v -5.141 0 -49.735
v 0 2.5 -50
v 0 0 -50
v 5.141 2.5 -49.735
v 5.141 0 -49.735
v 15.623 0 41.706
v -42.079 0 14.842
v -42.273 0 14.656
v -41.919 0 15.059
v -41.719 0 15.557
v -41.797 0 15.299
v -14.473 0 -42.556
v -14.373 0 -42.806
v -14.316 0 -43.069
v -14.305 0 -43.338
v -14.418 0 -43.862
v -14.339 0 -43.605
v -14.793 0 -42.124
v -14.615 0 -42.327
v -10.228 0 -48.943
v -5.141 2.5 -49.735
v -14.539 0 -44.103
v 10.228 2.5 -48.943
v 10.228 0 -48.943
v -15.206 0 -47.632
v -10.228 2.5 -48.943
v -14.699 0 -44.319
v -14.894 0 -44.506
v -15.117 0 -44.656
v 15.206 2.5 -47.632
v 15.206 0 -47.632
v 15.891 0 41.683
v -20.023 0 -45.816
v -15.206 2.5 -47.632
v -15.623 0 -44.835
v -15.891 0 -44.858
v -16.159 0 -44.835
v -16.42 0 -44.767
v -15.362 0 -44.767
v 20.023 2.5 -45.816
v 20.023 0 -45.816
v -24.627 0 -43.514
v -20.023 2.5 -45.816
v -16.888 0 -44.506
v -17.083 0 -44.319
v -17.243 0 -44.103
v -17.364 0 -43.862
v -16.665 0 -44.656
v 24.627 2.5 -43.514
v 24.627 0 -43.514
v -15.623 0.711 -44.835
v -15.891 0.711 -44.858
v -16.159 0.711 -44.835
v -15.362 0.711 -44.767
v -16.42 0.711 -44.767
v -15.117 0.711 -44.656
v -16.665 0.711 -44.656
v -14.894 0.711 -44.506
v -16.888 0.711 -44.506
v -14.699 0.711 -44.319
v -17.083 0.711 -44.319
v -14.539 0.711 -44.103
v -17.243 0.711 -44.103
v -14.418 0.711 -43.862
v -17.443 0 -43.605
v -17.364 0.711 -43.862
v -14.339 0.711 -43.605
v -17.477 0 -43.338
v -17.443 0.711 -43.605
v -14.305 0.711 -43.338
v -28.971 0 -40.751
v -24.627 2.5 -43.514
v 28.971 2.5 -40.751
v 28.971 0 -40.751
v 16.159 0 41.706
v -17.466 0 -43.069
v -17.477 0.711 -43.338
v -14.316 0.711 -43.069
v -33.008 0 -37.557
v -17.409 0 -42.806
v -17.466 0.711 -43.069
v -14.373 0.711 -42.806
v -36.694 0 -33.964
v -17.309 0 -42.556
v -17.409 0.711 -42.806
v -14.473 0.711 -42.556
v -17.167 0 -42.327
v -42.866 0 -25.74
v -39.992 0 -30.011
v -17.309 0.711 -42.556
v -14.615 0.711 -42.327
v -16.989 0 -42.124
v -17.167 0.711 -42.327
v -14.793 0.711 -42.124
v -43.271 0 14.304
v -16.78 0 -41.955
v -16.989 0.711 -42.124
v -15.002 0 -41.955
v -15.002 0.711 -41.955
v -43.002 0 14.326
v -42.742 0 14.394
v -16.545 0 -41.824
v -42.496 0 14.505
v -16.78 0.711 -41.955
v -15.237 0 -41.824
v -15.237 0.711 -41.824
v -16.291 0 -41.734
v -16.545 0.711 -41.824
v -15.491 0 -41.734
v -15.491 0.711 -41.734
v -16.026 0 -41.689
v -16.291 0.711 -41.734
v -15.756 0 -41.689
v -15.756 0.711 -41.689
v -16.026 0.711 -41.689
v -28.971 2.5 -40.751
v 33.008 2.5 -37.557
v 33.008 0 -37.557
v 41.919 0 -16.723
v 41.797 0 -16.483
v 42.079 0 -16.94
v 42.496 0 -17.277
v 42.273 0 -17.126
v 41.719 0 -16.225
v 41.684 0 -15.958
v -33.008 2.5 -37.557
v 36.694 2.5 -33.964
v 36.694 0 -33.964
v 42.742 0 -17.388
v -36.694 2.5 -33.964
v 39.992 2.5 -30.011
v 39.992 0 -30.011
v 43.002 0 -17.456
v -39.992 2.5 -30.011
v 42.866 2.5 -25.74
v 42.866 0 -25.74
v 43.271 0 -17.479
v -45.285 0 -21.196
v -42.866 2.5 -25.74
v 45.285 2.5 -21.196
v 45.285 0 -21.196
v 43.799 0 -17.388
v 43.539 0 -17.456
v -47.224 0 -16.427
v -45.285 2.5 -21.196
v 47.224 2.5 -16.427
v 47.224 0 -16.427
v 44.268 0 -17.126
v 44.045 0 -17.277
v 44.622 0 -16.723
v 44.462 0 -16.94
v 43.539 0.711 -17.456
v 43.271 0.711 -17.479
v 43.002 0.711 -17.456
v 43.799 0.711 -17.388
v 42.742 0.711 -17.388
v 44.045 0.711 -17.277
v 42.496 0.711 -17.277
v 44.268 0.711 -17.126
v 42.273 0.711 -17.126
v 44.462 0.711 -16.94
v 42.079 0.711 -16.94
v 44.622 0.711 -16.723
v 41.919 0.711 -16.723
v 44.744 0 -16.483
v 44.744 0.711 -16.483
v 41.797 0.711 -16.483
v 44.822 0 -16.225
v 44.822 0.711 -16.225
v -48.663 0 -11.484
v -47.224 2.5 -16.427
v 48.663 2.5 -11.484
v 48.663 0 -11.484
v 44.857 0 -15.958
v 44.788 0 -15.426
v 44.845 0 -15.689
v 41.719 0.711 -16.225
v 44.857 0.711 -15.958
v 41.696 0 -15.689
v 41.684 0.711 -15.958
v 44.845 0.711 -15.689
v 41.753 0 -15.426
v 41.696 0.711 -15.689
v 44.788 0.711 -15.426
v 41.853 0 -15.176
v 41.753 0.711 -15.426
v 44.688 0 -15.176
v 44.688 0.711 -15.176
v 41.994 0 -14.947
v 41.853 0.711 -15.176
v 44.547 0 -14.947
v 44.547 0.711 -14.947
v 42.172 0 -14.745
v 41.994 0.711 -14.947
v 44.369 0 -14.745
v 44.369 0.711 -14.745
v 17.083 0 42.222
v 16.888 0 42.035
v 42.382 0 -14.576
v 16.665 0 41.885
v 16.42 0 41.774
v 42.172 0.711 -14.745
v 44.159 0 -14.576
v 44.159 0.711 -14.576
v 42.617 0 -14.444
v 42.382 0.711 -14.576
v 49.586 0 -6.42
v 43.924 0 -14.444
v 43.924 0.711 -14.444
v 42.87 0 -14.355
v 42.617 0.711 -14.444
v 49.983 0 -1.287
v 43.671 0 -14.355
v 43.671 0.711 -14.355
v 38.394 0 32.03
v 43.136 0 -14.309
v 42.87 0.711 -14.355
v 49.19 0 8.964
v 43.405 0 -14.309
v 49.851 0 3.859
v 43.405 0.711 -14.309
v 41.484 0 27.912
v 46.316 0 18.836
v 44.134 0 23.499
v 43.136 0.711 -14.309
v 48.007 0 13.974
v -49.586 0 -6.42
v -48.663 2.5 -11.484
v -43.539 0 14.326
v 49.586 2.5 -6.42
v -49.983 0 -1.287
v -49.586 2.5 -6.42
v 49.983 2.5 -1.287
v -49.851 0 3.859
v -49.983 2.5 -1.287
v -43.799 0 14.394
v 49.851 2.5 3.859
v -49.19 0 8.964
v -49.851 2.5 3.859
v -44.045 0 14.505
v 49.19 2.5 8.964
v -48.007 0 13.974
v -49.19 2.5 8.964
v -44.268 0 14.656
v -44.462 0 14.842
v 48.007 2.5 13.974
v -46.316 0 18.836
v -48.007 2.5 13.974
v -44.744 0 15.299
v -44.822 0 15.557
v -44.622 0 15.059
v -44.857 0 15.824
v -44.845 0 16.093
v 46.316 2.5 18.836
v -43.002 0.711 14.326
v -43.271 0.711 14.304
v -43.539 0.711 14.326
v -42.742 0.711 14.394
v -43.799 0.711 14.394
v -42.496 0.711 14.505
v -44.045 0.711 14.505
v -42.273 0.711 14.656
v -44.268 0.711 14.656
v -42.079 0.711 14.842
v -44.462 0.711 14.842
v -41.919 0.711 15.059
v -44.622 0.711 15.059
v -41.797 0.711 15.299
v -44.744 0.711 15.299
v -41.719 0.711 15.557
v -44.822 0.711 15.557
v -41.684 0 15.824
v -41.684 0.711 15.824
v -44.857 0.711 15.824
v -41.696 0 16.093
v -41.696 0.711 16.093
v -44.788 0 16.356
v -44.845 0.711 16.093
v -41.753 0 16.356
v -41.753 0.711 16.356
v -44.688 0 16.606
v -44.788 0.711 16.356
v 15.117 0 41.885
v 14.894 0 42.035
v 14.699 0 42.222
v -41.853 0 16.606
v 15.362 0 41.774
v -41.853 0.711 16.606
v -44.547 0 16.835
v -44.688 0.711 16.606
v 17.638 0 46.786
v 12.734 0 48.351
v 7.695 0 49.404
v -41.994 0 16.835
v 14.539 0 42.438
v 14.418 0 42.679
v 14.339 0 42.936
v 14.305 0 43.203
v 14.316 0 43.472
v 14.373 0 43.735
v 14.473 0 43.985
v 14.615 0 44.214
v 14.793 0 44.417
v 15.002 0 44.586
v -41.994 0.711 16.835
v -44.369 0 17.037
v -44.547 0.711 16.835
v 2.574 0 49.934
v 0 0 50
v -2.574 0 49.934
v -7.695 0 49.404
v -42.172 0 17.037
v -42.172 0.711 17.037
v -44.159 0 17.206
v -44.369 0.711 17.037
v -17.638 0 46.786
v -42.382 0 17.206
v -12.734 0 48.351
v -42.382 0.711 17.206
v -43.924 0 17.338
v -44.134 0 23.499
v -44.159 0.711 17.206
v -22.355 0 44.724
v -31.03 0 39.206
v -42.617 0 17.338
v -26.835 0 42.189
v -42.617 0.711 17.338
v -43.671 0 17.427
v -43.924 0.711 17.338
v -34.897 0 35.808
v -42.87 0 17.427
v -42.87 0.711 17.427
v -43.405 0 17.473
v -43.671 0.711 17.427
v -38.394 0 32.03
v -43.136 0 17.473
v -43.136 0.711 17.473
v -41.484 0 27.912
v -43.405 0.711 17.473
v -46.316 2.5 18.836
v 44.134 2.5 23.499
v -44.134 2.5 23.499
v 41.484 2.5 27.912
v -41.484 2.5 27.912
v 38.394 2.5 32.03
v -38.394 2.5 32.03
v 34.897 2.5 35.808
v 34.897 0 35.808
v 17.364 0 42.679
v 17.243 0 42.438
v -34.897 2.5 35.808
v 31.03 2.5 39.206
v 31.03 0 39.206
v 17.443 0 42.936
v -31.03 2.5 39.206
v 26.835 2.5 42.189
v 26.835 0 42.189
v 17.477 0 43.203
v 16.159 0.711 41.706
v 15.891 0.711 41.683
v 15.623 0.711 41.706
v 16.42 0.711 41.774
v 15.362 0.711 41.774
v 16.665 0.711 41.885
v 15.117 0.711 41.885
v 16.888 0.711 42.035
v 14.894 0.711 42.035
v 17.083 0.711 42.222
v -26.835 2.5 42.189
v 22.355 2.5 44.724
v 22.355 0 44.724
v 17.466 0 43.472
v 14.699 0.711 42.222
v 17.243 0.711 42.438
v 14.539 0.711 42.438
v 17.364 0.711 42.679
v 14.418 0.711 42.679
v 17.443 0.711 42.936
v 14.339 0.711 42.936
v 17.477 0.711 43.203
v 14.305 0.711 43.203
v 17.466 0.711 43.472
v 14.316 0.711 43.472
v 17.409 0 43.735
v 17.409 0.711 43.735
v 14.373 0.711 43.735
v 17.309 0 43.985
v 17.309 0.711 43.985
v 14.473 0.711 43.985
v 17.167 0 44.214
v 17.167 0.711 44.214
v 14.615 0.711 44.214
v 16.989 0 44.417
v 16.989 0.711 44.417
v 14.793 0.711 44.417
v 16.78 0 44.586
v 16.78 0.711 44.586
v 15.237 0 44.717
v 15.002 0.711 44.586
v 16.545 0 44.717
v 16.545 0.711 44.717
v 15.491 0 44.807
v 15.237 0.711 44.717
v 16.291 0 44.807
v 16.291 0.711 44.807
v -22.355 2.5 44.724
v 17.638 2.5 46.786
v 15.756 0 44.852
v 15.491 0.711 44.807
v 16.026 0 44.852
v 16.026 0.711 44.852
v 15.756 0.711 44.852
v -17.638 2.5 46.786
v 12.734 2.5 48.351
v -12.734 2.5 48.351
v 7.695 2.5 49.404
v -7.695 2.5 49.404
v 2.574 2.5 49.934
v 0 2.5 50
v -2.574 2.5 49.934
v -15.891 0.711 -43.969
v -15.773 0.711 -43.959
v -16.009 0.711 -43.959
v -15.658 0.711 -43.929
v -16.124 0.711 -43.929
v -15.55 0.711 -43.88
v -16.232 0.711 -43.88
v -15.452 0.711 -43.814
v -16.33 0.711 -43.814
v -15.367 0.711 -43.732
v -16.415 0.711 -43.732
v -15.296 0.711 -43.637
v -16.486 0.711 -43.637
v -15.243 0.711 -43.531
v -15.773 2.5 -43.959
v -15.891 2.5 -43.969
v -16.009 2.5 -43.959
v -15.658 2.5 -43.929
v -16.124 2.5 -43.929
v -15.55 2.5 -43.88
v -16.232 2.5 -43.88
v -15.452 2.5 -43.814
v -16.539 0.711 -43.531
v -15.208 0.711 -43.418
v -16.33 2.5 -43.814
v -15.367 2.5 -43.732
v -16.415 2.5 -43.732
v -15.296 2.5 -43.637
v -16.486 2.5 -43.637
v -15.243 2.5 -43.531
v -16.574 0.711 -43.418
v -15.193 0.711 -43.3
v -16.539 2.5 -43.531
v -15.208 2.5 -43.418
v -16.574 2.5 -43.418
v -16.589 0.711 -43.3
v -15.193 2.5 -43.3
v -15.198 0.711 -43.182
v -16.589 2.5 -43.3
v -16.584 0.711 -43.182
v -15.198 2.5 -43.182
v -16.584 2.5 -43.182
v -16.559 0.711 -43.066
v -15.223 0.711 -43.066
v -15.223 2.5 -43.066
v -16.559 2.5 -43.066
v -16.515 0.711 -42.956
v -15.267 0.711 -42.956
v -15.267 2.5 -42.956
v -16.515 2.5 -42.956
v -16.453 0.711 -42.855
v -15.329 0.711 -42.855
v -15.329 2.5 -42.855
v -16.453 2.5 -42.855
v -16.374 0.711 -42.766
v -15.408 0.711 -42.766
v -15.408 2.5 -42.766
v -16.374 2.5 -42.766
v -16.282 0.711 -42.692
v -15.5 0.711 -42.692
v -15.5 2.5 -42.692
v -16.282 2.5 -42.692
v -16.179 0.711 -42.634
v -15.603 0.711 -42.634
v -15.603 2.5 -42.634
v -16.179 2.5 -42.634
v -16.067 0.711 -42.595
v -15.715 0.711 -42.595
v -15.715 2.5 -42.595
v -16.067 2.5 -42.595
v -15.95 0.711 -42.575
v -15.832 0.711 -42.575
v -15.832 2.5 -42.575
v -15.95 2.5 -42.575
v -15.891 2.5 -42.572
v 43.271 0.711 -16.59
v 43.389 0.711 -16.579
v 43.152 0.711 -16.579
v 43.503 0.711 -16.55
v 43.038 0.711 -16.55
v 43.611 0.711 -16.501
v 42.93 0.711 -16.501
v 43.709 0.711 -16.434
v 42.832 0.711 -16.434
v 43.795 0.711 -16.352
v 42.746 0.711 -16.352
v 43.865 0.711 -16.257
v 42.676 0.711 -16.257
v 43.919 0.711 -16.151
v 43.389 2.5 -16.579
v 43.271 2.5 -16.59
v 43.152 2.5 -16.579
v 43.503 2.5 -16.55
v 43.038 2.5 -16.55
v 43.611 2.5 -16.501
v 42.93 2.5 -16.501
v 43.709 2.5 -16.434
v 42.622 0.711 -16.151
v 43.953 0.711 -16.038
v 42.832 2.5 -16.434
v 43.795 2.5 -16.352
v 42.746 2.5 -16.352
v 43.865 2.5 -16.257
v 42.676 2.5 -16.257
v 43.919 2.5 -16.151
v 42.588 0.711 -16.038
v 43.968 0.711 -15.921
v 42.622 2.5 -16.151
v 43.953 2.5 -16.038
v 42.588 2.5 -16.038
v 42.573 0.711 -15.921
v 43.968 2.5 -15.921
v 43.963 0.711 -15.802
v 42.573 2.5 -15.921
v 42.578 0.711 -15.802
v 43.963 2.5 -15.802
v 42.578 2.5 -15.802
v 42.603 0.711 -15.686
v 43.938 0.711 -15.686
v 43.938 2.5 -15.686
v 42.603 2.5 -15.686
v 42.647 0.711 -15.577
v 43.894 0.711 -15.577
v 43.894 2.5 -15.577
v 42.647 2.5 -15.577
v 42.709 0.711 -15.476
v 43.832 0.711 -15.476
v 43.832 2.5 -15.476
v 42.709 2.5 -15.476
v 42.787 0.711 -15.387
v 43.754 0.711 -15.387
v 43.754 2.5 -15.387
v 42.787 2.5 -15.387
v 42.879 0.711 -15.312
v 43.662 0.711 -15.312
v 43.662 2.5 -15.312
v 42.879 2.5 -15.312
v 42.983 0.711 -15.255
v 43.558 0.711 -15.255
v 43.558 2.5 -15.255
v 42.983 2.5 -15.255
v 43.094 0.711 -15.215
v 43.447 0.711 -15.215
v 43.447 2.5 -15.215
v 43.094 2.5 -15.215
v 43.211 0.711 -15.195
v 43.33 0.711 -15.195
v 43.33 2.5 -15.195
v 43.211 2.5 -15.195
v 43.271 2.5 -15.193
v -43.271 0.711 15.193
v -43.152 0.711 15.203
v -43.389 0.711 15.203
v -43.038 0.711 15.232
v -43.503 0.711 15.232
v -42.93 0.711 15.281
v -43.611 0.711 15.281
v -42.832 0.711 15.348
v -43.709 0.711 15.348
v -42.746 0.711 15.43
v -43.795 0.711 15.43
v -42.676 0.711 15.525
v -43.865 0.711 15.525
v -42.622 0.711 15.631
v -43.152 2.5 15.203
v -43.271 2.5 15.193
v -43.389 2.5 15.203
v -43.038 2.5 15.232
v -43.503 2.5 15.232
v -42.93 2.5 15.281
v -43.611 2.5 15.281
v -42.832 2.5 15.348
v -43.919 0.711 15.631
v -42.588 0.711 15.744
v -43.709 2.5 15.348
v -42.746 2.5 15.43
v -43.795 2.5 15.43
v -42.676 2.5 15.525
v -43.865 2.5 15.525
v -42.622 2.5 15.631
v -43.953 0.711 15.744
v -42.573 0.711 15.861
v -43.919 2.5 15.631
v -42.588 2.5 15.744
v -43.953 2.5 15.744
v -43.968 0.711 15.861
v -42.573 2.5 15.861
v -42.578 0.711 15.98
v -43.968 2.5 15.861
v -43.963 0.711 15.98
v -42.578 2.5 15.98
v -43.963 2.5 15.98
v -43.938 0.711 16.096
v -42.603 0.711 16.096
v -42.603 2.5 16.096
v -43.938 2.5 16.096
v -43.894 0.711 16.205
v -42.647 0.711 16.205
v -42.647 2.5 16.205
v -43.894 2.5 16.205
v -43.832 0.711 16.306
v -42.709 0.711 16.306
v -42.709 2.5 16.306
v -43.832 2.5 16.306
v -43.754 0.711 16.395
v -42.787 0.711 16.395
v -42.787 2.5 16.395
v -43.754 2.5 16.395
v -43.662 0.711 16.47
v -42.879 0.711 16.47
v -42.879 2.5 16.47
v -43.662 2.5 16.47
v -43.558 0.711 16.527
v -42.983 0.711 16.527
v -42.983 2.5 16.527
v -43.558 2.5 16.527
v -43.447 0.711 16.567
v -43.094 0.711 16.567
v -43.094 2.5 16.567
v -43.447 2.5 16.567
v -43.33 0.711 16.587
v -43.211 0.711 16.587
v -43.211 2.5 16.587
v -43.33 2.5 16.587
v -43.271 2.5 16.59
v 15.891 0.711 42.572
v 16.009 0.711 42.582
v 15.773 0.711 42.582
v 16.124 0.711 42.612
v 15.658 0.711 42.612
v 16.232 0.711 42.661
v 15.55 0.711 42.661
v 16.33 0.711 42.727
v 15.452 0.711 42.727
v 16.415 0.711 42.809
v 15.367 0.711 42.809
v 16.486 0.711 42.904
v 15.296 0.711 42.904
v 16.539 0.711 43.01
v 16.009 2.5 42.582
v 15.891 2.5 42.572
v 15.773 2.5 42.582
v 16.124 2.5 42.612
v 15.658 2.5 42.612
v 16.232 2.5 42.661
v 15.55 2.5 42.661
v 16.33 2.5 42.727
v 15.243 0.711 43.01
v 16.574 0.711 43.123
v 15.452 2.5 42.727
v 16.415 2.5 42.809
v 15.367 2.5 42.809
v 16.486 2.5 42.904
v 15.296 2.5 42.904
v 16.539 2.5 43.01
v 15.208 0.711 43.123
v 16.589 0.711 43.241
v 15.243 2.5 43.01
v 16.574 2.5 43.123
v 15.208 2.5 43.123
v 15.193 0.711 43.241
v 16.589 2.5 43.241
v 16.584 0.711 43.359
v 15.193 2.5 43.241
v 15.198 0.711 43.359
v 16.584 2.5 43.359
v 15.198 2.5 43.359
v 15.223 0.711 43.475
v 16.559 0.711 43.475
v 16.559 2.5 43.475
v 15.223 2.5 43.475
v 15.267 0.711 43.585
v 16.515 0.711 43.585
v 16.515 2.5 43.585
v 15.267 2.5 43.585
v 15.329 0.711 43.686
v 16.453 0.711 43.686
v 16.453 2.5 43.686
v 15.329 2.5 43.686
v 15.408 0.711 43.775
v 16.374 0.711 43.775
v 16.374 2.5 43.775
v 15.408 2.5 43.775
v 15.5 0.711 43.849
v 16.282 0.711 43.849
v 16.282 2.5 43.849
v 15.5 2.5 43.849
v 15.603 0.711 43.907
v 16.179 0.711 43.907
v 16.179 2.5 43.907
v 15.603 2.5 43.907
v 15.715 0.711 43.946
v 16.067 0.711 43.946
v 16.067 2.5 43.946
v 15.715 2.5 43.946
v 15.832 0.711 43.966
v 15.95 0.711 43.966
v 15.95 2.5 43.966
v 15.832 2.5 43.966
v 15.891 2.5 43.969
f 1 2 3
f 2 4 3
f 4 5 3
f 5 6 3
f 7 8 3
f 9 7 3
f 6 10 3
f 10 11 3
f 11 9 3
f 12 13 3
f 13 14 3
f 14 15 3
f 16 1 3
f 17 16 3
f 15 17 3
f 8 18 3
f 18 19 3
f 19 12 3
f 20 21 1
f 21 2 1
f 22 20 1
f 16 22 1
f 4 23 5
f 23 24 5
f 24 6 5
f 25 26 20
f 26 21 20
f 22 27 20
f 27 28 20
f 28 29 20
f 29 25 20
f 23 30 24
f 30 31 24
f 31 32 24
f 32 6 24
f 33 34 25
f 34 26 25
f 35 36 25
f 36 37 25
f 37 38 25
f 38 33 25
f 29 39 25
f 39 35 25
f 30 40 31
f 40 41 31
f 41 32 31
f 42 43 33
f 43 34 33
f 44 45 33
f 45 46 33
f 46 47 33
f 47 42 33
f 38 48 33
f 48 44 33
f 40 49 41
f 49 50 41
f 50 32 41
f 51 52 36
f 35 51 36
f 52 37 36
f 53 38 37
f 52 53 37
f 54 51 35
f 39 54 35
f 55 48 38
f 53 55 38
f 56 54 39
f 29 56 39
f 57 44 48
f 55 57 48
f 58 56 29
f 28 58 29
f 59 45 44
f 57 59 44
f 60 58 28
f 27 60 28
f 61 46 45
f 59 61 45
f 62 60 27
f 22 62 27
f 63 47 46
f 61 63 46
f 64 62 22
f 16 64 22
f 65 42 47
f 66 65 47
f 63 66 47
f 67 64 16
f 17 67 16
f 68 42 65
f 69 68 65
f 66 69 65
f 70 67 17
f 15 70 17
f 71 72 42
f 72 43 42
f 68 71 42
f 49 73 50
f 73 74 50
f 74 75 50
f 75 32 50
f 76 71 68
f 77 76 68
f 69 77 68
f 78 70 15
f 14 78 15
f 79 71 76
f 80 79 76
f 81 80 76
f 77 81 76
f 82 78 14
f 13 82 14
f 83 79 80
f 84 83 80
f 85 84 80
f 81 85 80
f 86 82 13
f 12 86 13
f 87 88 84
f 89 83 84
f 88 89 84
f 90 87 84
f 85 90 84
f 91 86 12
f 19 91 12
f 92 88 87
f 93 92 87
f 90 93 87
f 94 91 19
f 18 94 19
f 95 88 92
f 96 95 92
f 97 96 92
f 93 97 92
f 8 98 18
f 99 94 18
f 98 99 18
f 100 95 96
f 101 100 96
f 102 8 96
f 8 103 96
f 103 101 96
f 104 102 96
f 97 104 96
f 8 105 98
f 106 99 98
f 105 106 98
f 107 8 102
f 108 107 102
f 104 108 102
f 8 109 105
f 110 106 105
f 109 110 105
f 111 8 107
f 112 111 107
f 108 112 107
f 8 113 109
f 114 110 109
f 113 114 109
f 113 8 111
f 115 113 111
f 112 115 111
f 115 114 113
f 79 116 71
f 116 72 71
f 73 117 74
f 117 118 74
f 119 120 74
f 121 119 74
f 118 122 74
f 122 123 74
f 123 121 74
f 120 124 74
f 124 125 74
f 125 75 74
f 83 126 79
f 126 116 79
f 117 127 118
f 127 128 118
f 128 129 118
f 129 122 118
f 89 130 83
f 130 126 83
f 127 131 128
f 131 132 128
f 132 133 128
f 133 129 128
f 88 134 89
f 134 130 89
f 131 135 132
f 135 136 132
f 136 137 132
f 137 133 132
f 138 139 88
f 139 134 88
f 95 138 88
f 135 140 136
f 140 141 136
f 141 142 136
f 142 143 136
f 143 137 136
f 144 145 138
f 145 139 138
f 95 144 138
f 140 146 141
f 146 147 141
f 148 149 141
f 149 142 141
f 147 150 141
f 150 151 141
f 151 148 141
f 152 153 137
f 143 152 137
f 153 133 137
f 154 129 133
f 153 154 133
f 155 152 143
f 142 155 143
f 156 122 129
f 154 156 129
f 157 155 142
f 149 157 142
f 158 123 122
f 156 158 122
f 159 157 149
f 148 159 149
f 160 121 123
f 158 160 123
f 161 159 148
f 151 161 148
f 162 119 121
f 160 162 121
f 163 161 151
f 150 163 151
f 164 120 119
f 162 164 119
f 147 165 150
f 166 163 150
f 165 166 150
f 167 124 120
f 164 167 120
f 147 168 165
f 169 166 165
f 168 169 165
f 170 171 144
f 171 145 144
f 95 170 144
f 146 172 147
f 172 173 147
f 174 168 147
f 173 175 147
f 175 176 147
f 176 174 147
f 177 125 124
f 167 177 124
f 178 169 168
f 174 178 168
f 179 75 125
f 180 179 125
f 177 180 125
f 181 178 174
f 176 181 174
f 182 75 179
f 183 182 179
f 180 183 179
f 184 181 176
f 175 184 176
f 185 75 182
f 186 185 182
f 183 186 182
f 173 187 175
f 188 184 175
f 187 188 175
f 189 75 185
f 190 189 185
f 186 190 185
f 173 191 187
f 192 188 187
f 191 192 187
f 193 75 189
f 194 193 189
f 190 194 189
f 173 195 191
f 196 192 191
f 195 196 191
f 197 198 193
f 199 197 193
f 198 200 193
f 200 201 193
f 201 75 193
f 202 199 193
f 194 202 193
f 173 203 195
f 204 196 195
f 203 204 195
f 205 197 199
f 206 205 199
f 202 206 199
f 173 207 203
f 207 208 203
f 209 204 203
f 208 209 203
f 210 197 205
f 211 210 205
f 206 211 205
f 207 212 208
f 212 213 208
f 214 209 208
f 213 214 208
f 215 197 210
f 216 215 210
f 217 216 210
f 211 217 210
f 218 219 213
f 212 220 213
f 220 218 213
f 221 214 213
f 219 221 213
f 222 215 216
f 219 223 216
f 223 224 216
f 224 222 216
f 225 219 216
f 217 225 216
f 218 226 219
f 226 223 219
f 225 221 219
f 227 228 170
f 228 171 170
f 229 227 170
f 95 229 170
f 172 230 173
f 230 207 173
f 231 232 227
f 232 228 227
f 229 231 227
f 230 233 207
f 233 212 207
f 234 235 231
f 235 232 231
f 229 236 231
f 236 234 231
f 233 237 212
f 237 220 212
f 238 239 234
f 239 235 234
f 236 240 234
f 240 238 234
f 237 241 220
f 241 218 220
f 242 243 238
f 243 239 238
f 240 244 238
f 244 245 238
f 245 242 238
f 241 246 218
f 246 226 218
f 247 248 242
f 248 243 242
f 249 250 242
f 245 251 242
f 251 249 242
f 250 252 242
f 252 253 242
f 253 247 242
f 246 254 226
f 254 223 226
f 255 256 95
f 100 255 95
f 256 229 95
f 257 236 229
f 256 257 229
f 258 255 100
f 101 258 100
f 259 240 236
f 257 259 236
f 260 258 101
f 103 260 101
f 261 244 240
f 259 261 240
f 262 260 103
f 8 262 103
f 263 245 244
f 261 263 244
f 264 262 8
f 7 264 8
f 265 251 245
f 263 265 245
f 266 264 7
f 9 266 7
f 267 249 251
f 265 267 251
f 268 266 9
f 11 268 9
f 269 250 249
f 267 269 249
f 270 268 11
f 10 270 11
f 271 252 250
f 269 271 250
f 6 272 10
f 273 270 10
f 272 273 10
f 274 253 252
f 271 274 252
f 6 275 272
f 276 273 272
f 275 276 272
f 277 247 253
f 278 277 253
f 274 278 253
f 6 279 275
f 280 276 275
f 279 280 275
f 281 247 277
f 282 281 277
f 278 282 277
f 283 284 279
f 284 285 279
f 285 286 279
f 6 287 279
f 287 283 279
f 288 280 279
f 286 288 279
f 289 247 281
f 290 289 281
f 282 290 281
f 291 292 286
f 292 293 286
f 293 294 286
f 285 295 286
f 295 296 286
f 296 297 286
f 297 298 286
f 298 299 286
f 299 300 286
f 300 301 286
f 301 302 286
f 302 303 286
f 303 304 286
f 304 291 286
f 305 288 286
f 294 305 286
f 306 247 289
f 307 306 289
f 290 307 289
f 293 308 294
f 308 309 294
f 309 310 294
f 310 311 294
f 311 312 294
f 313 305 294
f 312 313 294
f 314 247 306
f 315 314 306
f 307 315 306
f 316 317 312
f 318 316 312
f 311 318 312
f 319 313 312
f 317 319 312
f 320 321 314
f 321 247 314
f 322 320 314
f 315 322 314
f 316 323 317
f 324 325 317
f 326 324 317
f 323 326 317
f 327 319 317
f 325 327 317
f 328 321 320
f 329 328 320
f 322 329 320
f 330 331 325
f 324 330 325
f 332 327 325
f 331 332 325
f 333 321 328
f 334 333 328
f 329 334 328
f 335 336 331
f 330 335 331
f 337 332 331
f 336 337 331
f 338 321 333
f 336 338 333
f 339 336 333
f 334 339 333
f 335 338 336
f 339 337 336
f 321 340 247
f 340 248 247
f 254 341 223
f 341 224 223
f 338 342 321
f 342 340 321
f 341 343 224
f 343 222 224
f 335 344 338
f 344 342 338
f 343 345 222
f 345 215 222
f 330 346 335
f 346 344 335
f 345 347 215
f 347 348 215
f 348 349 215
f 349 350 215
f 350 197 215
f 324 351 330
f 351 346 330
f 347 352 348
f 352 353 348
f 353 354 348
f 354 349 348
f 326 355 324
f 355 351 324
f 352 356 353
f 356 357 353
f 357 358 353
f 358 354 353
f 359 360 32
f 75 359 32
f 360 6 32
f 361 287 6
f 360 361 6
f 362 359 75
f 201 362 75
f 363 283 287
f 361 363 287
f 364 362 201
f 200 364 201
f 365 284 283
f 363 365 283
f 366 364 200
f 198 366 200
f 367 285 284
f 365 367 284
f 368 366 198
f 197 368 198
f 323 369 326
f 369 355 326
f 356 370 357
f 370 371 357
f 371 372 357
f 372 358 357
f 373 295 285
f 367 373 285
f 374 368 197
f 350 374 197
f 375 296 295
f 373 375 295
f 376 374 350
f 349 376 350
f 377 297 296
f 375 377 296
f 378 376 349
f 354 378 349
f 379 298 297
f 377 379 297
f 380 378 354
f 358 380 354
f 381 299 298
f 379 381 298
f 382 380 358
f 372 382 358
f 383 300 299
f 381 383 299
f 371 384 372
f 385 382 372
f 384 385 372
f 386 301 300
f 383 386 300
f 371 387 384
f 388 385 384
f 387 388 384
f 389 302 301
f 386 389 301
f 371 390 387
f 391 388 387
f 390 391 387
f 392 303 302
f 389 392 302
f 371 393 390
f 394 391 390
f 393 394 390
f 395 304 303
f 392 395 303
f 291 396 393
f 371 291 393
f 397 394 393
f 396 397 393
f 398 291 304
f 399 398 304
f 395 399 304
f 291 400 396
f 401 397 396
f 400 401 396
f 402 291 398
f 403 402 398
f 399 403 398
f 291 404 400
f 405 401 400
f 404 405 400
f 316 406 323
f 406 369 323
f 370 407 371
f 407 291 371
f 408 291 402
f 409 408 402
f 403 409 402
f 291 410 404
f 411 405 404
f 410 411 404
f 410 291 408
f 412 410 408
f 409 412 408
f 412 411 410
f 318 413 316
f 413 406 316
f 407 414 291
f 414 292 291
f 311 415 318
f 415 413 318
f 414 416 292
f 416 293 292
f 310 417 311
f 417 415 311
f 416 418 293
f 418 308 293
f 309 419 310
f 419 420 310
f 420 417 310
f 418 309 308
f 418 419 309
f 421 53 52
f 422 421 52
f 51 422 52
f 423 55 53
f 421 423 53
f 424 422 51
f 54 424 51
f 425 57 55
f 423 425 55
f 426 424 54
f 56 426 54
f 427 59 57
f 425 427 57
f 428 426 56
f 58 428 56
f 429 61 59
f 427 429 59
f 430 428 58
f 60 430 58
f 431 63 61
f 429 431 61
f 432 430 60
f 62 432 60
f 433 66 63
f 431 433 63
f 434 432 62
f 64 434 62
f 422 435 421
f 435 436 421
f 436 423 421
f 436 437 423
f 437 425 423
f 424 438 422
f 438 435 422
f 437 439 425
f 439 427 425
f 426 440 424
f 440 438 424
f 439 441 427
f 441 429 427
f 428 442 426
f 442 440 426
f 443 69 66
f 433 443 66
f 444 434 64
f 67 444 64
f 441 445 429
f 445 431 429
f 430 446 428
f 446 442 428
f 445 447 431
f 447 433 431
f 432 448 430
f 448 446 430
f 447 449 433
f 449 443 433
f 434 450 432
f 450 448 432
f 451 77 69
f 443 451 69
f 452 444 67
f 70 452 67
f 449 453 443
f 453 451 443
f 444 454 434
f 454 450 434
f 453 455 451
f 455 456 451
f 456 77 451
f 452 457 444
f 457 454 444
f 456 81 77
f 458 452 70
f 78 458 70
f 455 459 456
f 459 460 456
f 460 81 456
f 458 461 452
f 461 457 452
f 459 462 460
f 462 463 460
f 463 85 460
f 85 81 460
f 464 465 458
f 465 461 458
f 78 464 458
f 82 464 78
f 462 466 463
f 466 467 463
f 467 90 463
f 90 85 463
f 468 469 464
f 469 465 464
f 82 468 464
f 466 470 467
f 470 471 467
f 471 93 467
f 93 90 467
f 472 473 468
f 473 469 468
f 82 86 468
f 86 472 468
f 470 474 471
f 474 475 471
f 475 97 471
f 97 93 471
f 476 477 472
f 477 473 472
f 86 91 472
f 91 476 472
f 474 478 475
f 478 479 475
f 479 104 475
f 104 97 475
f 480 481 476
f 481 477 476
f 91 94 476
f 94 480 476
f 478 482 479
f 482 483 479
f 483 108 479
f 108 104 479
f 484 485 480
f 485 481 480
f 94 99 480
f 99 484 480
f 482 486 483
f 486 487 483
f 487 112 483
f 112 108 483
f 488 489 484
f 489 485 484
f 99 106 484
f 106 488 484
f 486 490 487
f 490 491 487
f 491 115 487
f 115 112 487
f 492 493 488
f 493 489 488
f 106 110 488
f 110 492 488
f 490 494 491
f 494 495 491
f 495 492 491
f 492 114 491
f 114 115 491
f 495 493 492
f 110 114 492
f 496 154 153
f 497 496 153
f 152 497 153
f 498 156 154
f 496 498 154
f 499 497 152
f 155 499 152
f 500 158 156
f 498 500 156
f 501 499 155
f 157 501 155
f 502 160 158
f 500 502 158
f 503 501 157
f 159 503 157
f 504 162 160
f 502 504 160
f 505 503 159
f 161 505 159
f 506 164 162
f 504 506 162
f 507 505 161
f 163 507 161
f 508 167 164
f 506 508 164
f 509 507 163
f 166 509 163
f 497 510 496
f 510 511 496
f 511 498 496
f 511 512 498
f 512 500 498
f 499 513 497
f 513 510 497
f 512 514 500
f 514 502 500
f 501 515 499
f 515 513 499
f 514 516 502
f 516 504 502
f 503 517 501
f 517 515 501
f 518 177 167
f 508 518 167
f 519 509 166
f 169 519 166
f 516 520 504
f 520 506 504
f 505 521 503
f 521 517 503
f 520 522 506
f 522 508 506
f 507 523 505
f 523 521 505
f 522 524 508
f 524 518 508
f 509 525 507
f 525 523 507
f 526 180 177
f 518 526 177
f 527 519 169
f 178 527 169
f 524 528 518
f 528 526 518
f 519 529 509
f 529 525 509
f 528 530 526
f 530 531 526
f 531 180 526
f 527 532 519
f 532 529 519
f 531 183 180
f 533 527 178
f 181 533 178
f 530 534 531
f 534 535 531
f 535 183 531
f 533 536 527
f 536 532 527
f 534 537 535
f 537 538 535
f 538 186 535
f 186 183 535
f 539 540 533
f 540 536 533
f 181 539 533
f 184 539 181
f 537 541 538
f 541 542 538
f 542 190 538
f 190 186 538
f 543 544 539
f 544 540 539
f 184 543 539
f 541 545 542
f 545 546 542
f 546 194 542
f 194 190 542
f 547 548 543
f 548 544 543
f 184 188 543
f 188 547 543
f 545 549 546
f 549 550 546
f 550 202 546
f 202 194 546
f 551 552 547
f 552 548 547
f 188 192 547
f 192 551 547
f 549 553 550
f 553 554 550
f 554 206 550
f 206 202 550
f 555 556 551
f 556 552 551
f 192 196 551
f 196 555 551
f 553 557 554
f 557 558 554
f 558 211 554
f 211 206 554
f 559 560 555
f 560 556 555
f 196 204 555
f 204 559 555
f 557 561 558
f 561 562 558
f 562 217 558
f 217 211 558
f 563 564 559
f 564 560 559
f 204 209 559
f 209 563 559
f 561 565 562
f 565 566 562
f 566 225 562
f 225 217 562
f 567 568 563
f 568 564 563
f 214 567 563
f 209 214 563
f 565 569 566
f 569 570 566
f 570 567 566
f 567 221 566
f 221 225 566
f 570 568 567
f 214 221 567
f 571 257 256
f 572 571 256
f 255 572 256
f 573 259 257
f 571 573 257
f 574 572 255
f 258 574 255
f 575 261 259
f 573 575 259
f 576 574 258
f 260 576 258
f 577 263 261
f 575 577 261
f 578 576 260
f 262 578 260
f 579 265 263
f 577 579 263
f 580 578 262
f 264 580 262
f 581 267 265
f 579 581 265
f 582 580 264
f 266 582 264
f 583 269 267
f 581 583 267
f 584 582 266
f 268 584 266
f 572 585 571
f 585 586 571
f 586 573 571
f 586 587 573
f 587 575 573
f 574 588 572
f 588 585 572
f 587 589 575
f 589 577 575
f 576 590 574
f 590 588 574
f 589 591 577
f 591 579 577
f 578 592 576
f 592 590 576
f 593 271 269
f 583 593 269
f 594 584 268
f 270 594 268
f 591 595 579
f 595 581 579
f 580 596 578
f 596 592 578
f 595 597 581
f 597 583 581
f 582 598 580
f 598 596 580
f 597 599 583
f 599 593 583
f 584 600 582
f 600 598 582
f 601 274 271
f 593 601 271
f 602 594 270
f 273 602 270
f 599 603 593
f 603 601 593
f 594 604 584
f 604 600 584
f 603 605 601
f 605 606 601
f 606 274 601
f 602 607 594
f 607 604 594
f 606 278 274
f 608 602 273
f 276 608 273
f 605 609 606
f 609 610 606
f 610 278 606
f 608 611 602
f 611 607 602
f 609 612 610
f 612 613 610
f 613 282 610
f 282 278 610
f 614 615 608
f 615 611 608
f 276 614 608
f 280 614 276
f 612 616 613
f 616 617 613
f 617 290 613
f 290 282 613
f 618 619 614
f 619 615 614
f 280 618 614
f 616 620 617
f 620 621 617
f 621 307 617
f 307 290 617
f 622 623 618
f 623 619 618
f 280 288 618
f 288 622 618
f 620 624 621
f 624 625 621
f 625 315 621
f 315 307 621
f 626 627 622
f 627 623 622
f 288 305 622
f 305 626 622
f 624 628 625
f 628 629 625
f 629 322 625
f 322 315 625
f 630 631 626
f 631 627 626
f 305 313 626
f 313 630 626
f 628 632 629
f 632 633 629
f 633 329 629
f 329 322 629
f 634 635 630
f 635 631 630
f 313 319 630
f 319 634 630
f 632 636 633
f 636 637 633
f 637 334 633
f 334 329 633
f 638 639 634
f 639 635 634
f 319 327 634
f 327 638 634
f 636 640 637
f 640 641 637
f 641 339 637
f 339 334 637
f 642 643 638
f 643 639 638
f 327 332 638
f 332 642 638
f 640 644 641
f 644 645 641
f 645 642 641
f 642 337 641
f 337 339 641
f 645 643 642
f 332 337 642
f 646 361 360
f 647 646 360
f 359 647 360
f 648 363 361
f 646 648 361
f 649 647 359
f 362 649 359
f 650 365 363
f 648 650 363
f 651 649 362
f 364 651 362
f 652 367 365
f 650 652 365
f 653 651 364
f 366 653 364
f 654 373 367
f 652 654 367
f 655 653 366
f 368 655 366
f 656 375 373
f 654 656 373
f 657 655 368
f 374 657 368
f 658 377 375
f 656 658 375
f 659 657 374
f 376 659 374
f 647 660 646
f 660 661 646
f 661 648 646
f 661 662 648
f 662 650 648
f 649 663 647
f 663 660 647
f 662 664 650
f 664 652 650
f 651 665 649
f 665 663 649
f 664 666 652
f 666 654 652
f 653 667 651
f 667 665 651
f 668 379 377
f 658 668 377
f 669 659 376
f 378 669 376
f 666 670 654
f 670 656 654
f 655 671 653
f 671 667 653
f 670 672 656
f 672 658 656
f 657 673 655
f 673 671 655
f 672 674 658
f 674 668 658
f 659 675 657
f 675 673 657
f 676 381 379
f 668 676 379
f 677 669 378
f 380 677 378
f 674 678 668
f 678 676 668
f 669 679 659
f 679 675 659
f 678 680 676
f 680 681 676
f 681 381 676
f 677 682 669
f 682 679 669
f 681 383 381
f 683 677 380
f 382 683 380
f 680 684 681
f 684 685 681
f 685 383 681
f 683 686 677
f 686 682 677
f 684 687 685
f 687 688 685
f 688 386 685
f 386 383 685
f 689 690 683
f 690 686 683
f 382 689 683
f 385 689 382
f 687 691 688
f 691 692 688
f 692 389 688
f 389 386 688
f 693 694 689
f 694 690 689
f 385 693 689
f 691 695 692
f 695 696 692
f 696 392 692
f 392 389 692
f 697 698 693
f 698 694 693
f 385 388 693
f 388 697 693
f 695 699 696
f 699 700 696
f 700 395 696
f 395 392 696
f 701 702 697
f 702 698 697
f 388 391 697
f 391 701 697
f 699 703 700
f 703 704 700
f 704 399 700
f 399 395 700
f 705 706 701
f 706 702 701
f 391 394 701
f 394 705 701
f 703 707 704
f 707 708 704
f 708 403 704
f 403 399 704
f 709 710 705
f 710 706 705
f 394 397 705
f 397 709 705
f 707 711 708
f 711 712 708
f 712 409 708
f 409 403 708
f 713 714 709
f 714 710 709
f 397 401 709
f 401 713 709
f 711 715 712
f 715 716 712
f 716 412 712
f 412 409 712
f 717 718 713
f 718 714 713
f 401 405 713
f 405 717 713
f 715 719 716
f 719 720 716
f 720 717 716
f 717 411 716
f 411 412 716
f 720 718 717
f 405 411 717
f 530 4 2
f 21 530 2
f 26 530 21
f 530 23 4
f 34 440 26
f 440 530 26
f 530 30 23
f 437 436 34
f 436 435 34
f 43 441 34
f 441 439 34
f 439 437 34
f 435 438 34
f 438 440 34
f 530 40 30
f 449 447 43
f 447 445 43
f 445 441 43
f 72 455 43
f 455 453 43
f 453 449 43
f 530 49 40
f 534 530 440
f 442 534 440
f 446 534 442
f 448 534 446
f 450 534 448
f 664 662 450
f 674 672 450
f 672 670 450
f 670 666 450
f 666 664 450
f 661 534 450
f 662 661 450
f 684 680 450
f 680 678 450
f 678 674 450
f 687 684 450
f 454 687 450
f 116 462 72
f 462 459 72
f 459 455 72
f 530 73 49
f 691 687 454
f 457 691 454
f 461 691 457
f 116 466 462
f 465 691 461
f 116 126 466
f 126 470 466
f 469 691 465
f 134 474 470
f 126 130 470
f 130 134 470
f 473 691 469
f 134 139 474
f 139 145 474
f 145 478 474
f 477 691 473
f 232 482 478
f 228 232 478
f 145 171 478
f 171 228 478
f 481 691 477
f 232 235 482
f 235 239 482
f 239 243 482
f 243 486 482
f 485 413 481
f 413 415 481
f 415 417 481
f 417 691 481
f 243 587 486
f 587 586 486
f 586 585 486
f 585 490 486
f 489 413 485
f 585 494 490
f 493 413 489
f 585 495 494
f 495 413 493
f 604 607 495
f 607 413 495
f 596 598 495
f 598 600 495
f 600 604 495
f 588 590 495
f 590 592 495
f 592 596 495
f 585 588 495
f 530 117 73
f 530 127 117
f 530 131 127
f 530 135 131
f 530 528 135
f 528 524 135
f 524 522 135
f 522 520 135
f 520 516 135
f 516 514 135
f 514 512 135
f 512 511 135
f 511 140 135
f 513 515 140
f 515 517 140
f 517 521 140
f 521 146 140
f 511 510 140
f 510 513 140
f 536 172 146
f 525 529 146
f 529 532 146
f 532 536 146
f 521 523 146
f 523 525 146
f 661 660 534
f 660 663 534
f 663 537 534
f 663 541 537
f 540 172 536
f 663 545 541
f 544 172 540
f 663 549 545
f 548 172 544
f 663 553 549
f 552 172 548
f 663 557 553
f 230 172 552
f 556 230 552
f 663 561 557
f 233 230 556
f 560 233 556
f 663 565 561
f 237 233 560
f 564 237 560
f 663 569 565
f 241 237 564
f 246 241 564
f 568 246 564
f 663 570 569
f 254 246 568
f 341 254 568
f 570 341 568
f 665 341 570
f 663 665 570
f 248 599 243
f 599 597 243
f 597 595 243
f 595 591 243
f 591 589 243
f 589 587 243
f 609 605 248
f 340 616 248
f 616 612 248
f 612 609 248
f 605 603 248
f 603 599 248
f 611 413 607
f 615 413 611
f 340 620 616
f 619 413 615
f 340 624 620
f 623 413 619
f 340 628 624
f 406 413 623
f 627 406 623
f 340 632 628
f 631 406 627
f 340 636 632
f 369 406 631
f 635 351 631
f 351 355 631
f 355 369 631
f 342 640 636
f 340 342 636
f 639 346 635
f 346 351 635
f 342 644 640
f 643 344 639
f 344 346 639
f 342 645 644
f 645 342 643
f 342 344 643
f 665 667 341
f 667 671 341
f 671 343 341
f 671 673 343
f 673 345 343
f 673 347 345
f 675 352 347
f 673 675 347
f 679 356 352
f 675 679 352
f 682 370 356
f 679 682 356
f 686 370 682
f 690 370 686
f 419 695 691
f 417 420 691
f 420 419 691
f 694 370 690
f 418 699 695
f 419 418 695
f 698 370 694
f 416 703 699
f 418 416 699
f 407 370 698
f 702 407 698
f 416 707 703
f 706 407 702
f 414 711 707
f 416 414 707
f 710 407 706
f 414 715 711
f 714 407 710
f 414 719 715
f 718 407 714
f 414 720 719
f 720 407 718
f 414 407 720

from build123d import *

# Parameters (mm, degrees)
SKETCH1_R                                           = 50
BOSS_EXTRUDE1_DEPTH                                 = 2.5
CBORE_FOR_00_BINDING_HEAD_MACHINE_SCREW_D           = 1.397
CBORE_FOR_00_BINDING_HEAD_MACHINE_SCREW_DEPTH       = 7.5
CBORE_FOR_00_BINDING_HEAD_MACHINE_SCREW_CBORE_D     = 3.175
CBORE_FOR_00_BINDING_HEAD_MACHINE_SCREW_CBORE_DEPTH = 0.7112
CBORE_FOR_00_BINDING_HEAD_MACHINE_SCREW_TIP         = 0.419701142


with BuildPart() as part:
    # Sketch1 → Boss-Extrude1 (new body)
    with BuildSketch(Plane(origin=(0, 0, 0), x_dir=(1, 0, 0), z_dir=(0, 1, 0))):
        with Locations(Location((0, 0, 0), (0, 0, 270))):
            Circle(SKETCH1_R)
    extrude(amount=BOSS_EXTRUDE1_DEPTH)

    # CBORE for #00 Binding Head Machine Screw1
    with Locations(Plane(origin=(-15.891003533, 0, -43.270503311), x_dir=(0, 0, -1), z_dir=(0, -1, 0))):
        with Locations((0, 0), (-59.161506844, -27.379499778), (-86.541006622, 31.782007066), (-27.379499778, 59.161506844)):
            CounterBoreHole(CBORE_FOR_00_BINDING_HEAD_MACHINE_SCREW_D / 2, CBORE_FOR_00_BINDING_HEAD_MACHINE_SCREW_CBORE_D / 2, CBORE_FOR_00_BINDING_HEAD_MACHINE_SCREW_CBORE_DEPTH, depth=CBORE_FOR_00_BINDING_HEAD_MACHINE_SCREW_DEPTH)
            with Locations((0, 0, -(CBORE_FOR_00_BINDING_HEAD_MACHINE_SCREW_DEPTH + CBORE_FOR_00_BINDING_HEAD_MACHINE_SCREW_TIP / 2))):  # 118° drill point
                Cone(0, CBORE_FOR_00_BINDING_HEAD_MACHINE_SCREW_D / 2, CBORE_FOR_00_BINDING_HEAD_MACHINE_SCREW_TIP, mode=Mode.SUBTRACT)


solid = part.part
